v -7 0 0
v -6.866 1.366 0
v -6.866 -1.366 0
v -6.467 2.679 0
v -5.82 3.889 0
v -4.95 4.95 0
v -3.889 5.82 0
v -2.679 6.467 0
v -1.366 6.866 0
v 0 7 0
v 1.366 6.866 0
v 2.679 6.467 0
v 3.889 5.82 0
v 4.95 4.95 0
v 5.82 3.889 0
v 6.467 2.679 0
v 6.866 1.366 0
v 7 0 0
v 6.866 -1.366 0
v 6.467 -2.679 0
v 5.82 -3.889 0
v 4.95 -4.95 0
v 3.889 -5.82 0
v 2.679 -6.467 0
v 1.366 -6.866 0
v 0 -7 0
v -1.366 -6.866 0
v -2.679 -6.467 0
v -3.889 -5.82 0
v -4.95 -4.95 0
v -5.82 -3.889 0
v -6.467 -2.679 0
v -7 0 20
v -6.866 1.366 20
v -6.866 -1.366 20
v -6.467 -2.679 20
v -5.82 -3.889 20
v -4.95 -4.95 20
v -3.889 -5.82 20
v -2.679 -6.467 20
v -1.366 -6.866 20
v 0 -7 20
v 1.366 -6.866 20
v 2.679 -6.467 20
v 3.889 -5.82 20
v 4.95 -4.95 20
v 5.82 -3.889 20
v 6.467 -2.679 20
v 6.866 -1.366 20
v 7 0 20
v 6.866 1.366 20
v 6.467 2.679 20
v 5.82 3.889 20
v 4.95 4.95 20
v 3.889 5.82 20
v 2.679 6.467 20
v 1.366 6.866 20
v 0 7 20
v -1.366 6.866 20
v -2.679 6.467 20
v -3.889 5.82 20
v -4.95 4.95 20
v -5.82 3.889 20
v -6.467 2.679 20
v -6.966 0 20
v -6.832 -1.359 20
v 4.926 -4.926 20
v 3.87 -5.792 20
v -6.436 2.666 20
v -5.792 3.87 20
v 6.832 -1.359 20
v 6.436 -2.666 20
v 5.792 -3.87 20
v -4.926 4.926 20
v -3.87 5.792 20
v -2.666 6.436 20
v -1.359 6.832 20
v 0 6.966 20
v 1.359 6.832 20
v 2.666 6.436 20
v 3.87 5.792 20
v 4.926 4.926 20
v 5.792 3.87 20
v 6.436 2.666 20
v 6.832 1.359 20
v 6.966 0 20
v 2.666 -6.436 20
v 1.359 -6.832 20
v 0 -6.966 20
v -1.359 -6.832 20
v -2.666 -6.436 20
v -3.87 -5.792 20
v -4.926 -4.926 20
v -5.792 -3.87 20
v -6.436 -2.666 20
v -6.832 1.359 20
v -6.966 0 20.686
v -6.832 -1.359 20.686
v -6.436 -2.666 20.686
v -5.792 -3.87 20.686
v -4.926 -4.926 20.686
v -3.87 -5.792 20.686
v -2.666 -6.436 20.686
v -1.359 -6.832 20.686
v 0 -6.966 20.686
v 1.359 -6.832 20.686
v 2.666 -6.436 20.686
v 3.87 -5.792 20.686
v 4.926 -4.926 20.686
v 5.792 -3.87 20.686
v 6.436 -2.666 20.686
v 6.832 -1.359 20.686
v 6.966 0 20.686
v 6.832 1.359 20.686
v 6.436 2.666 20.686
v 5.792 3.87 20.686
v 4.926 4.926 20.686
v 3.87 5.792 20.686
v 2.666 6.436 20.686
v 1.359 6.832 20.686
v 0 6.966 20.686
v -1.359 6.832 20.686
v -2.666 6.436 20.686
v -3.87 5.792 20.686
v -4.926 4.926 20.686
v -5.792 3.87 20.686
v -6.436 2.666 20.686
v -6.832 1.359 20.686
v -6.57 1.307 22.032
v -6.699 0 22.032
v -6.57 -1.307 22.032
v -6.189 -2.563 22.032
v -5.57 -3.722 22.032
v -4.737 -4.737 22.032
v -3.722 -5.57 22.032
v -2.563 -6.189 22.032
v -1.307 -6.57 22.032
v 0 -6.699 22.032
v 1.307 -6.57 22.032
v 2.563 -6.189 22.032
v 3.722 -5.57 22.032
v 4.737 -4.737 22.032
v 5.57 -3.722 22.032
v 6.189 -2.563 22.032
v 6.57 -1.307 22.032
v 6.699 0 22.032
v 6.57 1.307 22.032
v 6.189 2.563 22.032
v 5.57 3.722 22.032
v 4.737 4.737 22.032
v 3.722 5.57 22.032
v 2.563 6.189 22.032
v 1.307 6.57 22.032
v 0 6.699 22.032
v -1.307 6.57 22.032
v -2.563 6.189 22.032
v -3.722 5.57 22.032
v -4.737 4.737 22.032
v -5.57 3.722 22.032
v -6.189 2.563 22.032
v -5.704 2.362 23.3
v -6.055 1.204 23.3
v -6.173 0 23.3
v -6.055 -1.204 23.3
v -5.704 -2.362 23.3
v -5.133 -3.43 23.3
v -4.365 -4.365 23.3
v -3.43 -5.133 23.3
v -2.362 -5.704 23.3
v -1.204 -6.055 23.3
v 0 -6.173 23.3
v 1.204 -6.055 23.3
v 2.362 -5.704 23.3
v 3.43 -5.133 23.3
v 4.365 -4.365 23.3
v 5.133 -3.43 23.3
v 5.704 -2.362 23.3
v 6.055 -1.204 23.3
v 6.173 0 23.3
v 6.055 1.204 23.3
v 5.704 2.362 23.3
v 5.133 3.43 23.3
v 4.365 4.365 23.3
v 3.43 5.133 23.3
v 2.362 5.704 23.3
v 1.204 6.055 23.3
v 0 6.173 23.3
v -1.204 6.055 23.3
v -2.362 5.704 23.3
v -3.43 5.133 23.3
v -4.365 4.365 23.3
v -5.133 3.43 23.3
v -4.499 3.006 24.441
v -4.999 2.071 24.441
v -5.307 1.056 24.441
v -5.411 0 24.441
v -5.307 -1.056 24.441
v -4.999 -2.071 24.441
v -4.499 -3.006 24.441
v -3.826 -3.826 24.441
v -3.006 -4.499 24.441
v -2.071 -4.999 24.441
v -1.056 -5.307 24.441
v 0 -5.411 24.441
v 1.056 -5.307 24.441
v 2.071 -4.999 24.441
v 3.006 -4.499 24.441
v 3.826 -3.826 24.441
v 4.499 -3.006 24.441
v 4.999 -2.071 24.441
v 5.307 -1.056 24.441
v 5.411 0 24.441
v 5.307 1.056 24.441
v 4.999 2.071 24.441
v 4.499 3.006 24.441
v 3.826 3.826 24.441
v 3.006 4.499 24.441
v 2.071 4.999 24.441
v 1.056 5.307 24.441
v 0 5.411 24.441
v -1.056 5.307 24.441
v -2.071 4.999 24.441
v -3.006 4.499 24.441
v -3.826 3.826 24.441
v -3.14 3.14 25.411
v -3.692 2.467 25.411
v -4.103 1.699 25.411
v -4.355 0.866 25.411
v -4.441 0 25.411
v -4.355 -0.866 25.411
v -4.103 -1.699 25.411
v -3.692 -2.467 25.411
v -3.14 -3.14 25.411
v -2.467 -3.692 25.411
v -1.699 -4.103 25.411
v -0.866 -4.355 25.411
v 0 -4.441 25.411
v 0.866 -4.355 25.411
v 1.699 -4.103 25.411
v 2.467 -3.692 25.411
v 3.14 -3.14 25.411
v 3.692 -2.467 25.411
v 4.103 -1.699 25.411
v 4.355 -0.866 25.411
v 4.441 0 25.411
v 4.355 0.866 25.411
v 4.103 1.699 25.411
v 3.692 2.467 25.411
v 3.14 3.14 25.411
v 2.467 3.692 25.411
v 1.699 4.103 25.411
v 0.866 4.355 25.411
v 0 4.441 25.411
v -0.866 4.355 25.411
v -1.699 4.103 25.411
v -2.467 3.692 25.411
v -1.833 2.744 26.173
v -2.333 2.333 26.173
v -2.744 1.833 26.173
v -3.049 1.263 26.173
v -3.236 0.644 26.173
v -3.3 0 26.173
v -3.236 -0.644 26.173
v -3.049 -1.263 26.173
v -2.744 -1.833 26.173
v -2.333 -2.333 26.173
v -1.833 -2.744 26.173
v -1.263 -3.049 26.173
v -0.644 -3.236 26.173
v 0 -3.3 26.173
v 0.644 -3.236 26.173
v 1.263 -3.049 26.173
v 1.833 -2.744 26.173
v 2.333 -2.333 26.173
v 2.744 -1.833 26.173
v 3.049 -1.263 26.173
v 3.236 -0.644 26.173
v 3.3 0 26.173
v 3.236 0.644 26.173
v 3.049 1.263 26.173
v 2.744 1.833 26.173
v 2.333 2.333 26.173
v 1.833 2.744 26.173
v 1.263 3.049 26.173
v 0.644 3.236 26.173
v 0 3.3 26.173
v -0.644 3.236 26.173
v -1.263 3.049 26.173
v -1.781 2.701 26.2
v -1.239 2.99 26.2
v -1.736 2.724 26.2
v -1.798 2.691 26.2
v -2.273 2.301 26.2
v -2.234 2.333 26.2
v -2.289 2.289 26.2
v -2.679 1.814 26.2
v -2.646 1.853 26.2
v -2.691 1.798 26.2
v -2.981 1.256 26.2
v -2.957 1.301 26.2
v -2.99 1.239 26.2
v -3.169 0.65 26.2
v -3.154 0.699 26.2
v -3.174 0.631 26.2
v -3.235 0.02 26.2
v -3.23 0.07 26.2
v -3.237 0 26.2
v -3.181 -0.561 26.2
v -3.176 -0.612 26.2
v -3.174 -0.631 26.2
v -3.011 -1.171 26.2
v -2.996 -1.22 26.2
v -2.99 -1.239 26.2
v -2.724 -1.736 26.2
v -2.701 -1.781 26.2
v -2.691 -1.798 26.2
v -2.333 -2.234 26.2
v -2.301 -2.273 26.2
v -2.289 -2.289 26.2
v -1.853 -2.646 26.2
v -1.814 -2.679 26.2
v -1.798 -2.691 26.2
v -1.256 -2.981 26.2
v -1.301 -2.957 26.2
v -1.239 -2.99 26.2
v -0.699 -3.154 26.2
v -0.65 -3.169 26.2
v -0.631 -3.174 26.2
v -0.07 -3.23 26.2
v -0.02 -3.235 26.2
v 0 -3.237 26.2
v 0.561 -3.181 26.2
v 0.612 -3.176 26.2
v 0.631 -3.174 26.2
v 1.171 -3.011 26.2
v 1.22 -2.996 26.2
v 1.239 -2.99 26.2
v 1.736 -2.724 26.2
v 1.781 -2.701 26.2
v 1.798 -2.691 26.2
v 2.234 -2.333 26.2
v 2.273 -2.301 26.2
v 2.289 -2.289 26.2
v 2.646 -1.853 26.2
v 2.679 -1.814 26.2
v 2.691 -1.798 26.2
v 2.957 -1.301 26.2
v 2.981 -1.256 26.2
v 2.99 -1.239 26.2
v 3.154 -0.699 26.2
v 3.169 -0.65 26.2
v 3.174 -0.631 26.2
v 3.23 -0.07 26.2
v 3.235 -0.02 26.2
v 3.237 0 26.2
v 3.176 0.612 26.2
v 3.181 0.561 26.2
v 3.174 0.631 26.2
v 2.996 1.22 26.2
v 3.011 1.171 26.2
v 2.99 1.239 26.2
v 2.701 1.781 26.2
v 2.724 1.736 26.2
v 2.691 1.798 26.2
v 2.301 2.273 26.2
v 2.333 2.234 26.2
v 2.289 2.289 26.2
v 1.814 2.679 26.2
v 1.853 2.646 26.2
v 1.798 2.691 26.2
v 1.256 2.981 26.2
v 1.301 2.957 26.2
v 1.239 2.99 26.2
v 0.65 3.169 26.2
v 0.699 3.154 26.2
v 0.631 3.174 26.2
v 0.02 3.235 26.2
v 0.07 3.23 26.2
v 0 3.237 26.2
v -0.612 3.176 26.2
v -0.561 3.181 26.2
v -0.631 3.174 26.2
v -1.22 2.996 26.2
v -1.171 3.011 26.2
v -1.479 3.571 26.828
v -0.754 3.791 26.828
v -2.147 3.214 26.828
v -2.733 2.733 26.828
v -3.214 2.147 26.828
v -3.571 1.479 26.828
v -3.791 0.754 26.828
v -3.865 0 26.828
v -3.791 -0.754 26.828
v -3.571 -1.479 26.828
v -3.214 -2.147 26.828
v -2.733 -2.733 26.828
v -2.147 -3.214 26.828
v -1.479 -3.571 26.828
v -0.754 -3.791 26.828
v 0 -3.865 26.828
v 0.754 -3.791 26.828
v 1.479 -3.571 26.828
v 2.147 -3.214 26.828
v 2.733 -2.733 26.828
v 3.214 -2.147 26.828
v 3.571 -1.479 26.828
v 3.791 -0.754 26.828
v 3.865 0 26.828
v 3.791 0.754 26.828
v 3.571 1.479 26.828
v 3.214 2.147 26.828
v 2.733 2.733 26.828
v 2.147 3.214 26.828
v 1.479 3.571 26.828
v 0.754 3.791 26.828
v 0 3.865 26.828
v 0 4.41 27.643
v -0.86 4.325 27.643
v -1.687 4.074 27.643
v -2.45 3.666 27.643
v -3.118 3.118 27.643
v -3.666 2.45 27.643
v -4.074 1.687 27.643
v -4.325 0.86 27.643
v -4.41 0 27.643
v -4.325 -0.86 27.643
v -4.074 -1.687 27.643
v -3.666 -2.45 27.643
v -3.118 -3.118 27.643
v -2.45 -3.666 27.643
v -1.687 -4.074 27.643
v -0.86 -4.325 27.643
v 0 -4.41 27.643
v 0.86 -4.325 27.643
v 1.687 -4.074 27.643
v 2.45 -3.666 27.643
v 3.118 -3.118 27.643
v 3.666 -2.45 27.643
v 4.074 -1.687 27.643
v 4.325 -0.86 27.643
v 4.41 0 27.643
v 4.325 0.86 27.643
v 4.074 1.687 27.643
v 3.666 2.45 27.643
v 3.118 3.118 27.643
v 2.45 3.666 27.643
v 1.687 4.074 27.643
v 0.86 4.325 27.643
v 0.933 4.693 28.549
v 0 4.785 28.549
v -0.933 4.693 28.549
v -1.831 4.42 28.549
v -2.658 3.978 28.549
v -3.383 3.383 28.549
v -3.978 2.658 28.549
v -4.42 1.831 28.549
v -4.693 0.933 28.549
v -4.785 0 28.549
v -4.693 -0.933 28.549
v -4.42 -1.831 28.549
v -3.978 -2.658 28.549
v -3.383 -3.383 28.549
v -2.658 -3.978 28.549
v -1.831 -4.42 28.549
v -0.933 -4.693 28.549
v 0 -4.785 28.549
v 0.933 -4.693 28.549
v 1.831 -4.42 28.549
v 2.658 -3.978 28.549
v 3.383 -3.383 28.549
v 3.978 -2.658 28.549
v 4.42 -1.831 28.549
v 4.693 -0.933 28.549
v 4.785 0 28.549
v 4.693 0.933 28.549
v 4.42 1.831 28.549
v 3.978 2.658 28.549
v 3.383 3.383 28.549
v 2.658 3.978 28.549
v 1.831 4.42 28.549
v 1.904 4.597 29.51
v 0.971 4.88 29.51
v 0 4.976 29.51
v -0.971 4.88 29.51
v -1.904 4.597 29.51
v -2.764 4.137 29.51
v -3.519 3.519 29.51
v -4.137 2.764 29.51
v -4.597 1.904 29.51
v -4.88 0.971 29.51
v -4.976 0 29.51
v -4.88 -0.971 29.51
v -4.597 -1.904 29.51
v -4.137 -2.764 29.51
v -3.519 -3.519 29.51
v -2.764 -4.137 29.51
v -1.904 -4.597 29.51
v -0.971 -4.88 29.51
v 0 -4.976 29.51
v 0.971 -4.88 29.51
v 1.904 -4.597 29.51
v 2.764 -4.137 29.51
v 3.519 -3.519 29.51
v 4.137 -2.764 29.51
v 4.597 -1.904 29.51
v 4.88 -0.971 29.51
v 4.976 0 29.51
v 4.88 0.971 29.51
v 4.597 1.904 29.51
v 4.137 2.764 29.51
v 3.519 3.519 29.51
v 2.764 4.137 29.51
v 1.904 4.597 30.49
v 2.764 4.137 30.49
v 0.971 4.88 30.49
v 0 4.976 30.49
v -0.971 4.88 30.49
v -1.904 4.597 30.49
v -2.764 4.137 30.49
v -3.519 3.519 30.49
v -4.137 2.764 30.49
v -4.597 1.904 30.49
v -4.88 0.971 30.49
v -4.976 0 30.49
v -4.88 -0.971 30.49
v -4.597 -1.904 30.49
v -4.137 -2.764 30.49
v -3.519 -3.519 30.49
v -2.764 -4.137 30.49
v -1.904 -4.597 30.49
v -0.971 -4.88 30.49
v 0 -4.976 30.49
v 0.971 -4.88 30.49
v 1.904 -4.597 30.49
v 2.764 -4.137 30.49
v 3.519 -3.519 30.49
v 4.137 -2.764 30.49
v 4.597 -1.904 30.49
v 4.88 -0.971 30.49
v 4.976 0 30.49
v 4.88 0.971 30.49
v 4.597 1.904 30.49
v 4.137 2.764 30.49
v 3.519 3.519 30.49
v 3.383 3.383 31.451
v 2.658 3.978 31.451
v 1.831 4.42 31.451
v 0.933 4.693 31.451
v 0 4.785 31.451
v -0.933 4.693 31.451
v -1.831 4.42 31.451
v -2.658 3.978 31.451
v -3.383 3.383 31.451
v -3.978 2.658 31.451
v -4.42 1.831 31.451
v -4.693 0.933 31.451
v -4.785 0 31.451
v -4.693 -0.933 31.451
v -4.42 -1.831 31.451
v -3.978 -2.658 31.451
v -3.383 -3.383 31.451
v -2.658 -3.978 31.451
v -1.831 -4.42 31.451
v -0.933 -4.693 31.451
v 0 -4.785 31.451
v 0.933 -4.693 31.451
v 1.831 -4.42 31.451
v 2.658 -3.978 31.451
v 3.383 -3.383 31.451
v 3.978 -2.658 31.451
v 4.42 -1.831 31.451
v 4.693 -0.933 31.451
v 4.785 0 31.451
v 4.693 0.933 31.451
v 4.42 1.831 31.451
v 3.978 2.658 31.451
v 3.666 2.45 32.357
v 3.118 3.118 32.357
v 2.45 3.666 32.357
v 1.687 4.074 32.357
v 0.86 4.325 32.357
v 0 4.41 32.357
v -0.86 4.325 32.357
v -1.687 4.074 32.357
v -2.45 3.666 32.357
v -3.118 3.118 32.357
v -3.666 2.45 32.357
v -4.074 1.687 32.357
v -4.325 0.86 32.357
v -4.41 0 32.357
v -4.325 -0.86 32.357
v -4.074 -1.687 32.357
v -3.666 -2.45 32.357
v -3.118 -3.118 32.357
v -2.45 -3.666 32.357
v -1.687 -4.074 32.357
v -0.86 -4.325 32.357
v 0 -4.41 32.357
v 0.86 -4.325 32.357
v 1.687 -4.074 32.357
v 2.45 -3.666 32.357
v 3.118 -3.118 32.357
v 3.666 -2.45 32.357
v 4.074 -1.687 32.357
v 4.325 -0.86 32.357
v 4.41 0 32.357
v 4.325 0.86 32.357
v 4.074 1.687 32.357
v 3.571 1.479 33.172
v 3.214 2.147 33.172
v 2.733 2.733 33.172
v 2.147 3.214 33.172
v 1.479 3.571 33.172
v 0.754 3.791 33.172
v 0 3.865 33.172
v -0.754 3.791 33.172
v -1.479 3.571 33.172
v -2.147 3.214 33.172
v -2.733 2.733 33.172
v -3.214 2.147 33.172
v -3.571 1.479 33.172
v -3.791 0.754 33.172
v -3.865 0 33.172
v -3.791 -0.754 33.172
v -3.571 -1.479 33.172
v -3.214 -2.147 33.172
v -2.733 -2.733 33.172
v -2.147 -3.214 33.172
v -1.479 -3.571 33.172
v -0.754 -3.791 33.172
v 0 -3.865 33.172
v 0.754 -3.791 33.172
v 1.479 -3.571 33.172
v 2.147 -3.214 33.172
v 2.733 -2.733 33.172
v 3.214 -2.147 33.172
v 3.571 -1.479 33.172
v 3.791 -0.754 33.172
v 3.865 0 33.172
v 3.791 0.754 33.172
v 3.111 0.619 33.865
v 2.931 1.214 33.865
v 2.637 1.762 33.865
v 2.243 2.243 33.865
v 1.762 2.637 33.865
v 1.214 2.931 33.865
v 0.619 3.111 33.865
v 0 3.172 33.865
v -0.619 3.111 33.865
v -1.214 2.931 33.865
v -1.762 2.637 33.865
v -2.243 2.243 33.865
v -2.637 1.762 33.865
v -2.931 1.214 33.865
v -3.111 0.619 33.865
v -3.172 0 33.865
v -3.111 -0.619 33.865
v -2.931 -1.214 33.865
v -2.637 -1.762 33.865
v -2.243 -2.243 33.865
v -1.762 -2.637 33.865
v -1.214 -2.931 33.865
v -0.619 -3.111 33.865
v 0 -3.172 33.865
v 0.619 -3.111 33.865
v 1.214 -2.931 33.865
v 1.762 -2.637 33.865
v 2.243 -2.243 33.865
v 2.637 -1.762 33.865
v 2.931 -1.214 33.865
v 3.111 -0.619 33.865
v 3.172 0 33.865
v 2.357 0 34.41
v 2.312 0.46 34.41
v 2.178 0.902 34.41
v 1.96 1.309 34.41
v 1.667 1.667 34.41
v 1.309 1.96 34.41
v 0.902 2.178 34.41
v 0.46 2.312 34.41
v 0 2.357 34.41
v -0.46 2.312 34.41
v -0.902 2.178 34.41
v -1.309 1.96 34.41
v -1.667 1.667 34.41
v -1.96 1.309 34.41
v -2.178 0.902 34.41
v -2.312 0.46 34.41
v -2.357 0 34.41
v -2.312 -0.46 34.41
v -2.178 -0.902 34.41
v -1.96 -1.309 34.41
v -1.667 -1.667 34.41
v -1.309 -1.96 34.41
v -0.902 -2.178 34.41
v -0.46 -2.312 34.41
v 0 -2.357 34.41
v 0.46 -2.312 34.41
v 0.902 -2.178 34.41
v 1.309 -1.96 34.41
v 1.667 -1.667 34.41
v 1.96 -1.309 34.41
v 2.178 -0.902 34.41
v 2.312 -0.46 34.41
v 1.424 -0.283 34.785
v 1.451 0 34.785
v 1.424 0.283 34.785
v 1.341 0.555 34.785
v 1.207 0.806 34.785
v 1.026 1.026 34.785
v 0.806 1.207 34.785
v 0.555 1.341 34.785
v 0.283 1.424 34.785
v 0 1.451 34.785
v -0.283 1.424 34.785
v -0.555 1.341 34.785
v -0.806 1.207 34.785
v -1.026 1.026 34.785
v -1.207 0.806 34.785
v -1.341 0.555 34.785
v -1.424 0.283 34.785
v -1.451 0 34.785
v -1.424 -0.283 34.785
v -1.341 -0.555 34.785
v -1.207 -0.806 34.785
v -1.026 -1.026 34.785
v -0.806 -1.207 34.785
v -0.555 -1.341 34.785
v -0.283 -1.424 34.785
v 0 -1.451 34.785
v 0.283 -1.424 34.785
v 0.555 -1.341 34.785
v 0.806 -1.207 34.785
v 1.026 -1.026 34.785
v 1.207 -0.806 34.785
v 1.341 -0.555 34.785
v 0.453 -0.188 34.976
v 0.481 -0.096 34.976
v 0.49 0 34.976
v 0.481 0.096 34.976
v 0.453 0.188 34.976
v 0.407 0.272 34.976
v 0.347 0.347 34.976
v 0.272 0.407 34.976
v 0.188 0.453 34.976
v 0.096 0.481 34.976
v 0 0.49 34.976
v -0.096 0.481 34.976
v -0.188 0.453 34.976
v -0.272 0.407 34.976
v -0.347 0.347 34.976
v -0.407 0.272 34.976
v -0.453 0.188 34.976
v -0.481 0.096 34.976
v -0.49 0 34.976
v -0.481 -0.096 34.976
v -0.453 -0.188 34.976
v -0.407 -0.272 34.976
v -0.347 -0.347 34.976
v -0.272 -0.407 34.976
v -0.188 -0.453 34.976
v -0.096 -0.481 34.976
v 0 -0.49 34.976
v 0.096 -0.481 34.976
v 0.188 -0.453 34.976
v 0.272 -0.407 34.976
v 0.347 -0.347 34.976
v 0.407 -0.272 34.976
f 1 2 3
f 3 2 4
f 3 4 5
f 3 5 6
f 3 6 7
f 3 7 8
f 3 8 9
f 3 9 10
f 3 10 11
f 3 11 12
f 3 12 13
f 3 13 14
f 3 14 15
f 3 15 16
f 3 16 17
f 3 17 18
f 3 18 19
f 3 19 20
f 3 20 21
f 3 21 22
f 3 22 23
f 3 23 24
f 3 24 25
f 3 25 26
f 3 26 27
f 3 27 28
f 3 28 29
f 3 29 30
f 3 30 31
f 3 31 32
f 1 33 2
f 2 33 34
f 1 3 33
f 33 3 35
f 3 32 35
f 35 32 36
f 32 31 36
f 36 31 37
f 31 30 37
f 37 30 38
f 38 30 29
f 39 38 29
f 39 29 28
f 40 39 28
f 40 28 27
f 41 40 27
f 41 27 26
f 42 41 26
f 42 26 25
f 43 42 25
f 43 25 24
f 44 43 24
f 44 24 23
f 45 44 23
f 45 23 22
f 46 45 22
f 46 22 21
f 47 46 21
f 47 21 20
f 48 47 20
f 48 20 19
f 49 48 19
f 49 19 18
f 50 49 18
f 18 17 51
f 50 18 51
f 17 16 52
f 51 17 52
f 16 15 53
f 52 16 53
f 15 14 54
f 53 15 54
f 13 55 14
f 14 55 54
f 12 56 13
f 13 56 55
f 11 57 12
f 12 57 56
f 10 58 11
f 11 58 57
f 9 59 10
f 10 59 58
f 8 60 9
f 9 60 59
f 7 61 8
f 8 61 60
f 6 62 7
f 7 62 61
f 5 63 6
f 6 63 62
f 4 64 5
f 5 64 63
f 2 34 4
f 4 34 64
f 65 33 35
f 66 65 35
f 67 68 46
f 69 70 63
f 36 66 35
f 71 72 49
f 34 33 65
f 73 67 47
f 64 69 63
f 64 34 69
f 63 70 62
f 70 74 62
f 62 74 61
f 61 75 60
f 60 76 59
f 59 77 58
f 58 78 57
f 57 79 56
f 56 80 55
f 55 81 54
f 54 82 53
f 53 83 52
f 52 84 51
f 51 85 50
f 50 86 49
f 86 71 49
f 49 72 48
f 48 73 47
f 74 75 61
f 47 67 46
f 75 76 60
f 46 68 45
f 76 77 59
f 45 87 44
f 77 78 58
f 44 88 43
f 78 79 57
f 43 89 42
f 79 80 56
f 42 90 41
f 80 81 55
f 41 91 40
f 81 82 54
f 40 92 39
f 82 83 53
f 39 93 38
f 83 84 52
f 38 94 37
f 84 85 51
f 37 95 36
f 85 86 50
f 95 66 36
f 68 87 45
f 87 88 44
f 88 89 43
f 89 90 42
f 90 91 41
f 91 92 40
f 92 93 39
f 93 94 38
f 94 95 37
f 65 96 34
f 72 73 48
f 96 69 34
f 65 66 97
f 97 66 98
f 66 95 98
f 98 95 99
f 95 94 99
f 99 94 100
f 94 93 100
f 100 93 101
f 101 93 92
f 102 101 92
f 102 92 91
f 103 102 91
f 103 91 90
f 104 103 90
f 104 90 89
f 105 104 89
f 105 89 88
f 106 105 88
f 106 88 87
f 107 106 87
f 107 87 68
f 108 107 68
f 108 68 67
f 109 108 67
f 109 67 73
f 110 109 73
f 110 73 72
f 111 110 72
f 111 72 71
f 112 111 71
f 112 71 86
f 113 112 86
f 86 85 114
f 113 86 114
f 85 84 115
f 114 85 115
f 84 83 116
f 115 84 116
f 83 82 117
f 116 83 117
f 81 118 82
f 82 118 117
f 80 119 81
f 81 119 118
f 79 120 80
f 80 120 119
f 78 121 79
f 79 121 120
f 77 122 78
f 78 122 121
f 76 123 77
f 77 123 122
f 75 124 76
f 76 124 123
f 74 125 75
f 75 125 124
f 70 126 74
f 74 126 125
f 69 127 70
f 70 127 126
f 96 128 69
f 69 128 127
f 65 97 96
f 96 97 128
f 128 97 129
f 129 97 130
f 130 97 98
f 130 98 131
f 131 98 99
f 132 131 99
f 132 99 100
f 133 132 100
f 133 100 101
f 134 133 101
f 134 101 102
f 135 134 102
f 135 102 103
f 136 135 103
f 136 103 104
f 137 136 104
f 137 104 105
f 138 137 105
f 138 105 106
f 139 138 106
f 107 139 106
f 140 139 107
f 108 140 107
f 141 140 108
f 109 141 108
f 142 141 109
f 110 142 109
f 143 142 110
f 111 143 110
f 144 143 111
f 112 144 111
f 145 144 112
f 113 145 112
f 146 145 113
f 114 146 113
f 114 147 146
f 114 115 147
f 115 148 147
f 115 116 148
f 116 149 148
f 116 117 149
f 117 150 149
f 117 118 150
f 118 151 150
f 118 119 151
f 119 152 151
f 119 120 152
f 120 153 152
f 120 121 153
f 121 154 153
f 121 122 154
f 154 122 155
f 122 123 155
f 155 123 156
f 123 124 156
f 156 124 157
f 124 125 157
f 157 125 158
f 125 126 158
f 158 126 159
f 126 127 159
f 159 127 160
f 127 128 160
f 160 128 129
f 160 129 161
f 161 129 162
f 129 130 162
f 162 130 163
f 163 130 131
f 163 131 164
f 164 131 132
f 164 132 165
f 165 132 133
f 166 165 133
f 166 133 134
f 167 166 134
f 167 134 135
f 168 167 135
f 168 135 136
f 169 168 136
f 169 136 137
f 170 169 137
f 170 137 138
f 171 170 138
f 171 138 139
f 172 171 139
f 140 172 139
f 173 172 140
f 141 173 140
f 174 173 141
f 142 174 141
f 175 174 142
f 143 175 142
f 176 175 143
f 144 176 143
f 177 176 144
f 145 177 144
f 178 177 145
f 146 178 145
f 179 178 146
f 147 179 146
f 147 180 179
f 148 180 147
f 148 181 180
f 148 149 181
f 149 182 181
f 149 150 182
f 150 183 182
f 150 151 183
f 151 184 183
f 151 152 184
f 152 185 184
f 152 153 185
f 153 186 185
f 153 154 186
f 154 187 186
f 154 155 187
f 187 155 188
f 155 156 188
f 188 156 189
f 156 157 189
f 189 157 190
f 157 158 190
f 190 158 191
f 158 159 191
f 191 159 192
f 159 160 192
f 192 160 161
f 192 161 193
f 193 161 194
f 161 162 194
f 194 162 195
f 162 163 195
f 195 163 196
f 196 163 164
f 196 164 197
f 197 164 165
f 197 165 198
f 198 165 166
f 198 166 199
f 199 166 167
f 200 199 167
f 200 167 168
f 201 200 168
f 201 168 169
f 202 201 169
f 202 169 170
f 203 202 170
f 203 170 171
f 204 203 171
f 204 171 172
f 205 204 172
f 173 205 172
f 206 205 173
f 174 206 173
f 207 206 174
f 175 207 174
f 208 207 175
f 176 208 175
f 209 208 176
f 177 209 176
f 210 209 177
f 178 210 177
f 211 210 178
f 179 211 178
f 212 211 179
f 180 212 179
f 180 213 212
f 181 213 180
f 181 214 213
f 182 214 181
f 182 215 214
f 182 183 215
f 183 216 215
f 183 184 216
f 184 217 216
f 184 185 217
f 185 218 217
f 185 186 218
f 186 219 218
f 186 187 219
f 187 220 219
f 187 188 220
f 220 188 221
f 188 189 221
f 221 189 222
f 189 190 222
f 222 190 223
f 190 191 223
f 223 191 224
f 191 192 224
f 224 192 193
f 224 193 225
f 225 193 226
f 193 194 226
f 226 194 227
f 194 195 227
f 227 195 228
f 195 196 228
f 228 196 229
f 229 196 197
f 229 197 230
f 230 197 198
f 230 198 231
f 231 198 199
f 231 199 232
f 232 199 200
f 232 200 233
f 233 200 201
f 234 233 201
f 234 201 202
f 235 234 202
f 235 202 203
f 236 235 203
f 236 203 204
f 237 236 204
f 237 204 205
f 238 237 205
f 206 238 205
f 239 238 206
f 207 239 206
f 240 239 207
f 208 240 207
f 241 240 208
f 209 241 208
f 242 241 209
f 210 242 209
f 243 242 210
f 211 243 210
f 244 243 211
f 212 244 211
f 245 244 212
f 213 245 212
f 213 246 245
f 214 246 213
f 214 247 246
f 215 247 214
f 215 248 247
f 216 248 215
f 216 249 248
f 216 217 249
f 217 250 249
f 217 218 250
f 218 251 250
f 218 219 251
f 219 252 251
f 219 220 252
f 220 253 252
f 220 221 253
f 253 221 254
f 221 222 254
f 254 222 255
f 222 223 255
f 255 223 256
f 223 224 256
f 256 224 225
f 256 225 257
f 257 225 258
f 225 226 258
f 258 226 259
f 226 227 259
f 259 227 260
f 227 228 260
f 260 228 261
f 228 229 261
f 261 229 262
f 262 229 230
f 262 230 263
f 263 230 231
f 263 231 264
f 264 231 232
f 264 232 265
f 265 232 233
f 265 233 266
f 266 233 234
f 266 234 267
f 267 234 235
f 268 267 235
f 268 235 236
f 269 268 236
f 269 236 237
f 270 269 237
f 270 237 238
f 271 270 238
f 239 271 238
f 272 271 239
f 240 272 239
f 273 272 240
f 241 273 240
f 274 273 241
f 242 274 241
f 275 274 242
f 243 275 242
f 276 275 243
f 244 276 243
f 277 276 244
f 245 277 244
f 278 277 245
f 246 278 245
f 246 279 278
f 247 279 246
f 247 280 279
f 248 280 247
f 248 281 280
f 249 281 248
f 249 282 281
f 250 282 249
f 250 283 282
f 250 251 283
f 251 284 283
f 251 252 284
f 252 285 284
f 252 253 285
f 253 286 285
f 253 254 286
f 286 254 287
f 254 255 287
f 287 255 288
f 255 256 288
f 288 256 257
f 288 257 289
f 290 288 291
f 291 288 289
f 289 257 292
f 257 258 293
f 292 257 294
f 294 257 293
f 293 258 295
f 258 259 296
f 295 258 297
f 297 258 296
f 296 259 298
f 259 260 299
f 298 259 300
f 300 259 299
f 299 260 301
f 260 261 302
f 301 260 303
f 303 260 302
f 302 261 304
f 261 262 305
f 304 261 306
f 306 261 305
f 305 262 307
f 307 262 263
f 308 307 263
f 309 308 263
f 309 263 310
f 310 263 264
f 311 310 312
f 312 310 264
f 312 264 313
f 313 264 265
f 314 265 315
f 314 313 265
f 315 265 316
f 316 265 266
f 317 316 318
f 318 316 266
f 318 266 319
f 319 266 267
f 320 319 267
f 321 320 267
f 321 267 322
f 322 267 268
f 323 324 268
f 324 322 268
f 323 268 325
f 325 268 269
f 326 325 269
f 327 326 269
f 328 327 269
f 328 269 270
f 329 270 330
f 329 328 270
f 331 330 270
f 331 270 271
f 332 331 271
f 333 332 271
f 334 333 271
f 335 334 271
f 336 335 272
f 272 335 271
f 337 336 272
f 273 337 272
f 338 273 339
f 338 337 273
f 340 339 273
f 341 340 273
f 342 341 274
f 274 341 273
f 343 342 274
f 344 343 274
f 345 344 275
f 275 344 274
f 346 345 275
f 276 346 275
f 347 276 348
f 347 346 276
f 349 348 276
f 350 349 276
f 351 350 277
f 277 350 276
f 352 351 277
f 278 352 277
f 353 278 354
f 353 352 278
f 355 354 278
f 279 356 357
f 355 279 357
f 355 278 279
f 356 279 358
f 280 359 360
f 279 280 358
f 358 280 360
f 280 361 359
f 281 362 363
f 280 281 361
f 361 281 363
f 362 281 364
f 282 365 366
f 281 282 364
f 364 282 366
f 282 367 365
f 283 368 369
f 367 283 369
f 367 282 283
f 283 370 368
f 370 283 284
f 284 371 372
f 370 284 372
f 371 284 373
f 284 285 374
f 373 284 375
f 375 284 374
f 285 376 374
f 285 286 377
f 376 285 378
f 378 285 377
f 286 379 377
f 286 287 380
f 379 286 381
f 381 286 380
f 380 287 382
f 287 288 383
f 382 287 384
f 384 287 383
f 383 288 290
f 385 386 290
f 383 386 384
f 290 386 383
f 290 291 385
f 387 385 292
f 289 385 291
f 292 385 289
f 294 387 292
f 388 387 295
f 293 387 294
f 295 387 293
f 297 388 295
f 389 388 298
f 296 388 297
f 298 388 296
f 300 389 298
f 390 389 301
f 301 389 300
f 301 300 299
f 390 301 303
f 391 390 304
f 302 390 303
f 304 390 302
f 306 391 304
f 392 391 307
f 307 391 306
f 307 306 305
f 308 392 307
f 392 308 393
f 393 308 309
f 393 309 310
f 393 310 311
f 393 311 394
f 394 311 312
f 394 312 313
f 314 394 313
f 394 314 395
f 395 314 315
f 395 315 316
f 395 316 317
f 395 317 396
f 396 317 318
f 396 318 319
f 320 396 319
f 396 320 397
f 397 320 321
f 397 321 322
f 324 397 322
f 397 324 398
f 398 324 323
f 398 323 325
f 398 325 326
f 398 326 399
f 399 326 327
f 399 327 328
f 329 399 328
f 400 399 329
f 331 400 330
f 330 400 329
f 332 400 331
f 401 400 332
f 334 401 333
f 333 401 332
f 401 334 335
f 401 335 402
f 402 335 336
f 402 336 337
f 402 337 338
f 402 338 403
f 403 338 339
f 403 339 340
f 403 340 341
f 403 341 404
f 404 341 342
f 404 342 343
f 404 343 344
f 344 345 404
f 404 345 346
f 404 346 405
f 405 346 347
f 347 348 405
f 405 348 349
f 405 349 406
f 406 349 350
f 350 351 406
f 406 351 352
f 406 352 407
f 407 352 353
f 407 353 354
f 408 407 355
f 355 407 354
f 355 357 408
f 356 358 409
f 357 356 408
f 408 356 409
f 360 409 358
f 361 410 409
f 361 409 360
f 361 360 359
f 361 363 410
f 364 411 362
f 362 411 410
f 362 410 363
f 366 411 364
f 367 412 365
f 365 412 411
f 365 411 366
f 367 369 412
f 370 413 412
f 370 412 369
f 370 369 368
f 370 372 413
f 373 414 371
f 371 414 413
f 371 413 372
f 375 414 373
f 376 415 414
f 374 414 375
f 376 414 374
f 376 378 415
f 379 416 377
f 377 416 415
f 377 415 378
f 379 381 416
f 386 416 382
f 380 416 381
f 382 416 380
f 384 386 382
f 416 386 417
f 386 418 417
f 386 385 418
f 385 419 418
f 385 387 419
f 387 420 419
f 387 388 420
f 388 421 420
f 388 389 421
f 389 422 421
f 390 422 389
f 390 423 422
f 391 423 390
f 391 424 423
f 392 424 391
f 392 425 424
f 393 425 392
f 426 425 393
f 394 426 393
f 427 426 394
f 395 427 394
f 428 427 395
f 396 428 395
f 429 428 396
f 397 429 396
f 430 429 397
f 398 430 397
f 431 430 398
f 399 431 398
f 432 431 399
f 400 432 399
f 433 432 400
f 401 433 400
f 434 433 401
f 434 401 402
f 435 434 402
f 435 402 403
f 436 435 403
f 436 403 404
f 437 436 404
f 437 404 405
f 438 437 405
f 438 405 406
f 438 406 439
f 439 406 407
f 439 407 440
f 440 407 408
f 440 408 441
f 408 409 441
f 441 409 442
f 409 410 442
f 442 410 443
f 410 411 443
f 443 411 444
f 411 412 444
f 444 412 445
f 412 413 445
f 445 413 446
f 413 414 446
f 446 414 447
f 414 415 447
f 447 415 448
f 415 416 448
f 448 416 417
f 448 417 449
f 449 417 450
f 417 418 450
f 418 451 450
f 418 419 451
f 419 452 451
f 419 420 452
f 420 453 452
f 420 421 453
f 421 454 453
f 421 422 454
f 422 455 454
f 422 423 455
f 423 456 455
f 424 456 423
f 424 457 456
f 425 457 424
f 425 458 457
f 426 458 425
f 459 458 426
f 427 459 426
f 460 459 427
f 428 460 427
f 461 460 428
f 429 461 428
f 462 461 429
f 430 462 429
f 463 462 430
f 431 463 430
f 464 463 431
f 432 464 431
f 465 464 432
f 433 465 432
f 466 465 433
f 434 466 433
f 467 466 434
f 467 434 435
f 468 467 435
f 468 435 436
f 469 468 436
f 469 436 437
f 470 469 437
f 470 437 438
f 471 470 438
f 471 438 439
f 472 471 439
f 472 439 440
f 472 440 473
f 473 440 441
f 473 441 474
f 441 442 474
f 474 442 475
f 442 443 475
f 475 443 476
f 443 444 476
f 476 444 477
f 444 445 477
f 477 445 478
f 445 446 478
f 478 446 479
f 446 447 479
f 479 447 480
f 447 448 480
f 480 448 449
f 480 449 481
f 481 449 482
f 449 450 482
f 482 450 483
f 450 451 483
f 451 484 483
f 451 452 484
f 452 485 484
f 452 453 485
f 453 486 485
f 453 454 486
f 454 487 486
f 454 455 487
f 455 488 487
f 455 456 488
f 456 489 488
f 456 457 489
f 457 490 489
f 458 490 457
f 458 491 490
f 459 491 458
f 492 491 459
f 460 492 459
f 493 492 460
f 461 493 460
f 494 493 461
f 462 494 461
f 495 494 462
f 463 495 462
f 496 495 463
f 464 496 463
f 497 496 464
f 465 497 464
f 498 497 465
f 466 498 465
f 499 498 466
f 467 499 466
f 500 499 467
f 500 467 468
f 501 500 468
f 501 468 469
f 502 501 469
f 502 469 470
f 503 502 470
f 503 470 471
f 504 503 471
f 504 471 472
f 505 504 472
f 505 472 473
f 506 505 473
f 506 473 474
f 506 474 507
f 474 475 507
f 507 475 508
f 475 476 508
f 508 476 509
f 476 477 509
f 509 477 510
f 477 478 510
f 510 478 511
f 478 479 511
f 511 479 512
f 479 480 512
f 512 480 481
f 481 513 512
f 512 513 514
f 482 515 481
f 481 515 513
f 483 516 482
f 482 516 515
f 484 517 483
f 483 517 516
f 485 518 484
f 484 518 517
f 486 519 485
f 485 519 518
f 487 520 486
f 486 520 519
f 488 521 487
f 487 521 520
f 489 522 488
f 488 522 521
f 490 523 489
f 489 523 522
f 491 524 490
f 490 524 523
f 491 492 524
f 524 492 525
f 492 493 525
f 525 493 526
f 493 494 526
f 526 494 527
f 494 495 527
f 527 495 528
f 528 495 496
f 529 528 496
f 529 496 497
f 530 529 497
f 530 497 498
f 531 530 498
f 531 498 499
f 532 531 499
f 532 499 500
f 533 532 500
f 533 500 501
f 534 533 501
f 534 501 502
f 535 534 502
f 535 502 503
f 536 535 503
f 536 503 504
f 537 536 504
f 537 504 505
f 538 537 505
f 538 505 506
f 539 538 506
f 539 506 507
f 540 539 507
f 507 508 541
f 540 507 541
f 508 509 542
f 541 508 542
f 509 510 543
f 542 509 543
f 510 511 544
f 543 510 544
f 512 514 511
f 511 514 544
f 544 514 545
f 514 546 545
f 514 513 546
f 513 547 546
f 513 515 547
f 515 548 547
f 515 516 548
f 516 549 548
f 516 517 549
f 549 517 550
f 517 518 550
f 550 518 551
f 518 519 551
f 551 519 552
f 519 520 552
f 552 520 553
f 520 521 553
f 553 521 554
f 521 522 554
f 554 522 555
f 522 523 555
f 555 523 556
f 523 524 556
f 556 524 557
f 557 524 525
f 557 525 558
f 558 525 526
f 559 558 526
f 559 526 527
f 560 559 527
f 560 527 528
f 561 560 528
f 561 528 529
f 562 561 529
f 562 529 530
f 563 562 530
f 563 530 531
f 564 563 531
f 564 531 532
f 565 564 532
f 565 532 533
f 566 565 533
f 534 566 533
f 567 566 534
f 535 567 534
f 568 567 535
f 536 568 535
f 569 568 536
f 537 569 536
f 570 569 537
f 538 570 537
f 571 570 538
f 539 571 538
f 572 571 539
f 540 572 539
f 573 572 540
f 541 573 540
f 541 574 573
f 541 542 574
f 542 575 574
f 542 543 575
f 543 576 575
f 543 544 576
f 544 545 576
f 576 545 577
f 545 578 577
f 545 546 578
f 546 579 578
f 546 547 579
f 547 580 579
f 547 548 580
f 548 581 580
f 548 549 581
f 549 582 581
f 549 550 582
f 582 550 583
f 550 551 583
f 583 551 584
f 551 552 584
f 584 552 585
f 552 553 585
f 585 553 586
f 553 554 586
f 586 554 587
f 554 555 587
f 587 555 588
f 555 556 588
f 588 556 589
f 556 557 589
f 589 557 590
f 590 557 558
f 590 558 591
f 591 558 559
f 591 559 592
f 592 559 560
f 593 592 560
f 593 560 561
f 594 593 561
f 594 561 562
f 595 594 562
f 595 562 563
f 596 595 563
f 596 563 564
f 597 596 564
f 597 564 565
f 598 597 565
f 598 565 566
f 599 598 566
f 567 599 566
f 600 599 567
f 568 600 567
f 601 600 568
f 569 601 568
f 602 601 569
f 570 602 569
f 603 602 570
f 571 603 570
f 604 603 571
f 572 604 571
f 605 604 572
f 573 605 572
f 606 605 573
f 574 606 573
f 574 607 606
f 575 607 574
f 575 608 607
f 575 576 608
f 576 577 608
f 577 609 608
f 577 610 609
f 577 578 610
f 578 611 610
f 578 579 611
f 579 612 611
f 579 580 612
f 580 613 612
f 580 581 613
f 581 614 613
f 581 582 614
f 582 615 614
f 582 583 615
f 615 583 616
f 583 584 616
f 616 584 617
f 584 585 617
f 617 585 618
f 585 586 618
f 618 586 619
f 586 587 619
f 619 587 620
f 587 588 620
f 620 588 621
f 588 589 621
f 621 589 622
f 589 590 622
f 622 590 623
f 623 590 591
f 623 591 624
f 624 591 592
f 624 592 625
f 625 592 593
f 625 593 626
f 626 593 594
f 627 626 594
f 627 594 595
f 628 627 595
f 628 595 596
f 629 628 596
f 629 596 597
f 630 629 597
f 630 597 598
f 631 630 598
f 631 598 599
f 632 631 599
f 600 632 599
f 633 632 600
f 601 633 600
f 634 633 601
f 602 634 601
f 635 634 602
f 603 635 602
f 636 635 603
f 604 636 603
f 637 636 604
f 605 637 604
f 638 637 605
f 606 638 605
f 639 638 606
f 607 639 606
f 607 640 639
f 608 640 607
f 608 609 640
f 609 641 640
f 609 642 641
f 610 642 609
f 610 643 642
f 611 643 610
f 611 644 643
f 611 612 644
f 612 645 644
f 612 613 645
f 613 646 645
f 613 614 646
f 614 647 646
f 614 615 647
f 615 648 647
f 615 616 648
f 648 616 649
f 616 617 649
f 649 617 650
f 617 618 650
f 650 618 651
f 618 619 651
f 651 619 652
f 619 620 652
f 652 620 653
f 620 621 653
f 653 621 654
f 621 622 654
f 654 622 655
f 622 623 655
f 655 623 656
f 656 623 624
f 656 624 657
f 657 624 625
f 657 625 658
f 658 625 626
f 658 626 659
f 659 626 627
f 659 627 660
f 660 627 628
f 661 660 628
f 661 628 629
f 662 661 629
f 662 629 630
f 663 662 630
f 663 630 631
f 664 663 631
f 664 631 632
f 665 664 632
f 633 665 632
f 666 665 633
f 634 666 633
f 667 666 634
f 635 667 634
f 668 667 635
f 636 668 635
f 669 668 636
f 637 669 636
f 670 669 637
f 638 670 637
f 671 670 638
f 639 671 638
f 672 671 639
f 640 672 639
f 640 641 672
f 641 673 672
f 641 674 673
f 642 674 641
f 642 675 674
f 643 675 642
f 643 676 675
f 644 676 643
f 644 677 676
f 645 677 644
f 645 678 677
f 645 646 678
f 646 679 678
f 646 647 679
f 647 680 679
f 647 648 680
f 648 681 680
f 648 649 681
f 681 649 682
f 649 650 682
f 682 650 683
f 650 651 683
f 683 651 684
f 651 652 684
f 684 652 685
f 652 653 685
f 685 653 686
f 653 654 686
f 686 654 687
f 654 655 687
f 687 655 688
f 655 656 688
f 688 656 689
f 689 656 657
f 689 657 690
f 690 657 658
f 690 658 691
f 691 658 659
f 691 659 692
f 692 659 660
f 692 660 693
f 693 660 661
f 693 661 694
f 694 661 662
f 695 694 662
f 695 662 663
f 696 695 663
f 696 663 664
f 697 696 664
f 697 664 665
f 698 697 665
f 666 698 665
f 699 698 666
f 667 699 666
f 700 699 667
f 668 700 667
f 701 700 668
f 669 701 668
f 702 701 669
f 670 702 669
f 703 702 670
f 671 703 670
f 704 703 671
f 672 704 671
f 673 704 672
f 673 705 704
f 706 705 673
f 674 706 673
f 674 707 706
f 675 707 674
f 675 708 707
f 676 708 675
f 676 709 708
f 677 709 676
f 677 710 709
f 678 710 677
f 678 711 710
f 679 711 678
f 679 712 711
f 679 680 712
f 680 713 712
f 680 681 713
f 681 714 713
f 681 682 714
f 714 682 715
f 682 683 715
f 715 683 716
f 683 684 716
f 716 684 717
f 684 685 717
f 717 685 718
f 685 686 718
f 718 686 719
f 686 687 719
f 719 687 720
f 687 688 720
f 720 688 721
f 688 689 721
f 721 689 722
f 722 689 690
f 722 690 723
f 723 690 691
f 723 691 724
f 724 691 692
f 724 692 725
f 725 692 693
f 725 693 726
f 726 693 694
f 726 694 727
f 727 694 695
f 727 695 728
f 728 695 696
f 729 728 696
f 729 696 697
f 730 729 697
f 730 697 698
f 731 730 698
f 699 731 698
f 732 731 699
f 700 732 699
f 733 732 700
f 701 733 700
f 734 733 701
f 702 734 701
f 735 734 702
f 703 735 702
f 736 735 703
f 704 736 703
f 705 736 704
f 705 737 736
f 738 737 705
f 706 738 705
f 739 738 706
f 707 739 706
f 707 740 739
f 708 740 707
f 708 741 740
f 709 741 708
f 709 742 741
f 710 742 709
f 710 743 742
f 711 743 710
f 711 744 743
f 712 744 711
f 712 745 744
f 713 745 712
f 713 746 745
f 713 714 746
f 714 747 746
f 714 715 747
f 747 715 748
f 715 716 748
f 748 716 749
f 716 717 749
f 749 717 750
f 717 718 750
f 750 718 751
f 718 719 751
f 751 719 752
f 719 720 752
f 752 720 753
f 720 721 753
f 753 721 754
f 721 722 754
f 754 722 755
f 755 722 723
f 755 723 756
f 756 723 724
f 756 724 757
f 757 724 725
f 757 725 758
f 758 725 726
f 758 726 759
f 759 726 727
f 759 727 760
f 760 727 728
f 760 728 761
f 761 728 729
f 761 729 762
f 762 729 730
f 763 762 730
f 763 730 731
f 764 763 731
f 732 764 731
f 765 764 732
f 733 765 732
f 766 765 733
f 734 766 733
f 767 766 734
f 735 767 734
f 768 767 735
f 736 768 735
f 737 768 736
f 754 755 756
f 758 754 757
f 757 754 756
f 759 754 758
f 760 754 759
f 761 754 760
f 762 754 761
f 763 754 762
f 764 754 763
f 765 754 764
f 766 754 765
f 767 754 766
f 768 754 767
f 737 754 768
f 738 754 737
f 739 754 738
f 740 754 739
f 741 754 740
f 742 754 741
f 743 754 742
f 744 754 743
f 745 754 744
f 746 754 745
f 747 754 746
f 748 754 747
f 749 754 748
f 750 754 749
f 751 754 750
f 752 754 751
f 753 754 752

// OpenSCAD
cylinder( r=7, h=20, $fn=32 );

translate( [0,0,20] )
sphere( r=7, $fn=32 );

translate( [0,0,30] )
sphere( r=5, $fn=32 );
